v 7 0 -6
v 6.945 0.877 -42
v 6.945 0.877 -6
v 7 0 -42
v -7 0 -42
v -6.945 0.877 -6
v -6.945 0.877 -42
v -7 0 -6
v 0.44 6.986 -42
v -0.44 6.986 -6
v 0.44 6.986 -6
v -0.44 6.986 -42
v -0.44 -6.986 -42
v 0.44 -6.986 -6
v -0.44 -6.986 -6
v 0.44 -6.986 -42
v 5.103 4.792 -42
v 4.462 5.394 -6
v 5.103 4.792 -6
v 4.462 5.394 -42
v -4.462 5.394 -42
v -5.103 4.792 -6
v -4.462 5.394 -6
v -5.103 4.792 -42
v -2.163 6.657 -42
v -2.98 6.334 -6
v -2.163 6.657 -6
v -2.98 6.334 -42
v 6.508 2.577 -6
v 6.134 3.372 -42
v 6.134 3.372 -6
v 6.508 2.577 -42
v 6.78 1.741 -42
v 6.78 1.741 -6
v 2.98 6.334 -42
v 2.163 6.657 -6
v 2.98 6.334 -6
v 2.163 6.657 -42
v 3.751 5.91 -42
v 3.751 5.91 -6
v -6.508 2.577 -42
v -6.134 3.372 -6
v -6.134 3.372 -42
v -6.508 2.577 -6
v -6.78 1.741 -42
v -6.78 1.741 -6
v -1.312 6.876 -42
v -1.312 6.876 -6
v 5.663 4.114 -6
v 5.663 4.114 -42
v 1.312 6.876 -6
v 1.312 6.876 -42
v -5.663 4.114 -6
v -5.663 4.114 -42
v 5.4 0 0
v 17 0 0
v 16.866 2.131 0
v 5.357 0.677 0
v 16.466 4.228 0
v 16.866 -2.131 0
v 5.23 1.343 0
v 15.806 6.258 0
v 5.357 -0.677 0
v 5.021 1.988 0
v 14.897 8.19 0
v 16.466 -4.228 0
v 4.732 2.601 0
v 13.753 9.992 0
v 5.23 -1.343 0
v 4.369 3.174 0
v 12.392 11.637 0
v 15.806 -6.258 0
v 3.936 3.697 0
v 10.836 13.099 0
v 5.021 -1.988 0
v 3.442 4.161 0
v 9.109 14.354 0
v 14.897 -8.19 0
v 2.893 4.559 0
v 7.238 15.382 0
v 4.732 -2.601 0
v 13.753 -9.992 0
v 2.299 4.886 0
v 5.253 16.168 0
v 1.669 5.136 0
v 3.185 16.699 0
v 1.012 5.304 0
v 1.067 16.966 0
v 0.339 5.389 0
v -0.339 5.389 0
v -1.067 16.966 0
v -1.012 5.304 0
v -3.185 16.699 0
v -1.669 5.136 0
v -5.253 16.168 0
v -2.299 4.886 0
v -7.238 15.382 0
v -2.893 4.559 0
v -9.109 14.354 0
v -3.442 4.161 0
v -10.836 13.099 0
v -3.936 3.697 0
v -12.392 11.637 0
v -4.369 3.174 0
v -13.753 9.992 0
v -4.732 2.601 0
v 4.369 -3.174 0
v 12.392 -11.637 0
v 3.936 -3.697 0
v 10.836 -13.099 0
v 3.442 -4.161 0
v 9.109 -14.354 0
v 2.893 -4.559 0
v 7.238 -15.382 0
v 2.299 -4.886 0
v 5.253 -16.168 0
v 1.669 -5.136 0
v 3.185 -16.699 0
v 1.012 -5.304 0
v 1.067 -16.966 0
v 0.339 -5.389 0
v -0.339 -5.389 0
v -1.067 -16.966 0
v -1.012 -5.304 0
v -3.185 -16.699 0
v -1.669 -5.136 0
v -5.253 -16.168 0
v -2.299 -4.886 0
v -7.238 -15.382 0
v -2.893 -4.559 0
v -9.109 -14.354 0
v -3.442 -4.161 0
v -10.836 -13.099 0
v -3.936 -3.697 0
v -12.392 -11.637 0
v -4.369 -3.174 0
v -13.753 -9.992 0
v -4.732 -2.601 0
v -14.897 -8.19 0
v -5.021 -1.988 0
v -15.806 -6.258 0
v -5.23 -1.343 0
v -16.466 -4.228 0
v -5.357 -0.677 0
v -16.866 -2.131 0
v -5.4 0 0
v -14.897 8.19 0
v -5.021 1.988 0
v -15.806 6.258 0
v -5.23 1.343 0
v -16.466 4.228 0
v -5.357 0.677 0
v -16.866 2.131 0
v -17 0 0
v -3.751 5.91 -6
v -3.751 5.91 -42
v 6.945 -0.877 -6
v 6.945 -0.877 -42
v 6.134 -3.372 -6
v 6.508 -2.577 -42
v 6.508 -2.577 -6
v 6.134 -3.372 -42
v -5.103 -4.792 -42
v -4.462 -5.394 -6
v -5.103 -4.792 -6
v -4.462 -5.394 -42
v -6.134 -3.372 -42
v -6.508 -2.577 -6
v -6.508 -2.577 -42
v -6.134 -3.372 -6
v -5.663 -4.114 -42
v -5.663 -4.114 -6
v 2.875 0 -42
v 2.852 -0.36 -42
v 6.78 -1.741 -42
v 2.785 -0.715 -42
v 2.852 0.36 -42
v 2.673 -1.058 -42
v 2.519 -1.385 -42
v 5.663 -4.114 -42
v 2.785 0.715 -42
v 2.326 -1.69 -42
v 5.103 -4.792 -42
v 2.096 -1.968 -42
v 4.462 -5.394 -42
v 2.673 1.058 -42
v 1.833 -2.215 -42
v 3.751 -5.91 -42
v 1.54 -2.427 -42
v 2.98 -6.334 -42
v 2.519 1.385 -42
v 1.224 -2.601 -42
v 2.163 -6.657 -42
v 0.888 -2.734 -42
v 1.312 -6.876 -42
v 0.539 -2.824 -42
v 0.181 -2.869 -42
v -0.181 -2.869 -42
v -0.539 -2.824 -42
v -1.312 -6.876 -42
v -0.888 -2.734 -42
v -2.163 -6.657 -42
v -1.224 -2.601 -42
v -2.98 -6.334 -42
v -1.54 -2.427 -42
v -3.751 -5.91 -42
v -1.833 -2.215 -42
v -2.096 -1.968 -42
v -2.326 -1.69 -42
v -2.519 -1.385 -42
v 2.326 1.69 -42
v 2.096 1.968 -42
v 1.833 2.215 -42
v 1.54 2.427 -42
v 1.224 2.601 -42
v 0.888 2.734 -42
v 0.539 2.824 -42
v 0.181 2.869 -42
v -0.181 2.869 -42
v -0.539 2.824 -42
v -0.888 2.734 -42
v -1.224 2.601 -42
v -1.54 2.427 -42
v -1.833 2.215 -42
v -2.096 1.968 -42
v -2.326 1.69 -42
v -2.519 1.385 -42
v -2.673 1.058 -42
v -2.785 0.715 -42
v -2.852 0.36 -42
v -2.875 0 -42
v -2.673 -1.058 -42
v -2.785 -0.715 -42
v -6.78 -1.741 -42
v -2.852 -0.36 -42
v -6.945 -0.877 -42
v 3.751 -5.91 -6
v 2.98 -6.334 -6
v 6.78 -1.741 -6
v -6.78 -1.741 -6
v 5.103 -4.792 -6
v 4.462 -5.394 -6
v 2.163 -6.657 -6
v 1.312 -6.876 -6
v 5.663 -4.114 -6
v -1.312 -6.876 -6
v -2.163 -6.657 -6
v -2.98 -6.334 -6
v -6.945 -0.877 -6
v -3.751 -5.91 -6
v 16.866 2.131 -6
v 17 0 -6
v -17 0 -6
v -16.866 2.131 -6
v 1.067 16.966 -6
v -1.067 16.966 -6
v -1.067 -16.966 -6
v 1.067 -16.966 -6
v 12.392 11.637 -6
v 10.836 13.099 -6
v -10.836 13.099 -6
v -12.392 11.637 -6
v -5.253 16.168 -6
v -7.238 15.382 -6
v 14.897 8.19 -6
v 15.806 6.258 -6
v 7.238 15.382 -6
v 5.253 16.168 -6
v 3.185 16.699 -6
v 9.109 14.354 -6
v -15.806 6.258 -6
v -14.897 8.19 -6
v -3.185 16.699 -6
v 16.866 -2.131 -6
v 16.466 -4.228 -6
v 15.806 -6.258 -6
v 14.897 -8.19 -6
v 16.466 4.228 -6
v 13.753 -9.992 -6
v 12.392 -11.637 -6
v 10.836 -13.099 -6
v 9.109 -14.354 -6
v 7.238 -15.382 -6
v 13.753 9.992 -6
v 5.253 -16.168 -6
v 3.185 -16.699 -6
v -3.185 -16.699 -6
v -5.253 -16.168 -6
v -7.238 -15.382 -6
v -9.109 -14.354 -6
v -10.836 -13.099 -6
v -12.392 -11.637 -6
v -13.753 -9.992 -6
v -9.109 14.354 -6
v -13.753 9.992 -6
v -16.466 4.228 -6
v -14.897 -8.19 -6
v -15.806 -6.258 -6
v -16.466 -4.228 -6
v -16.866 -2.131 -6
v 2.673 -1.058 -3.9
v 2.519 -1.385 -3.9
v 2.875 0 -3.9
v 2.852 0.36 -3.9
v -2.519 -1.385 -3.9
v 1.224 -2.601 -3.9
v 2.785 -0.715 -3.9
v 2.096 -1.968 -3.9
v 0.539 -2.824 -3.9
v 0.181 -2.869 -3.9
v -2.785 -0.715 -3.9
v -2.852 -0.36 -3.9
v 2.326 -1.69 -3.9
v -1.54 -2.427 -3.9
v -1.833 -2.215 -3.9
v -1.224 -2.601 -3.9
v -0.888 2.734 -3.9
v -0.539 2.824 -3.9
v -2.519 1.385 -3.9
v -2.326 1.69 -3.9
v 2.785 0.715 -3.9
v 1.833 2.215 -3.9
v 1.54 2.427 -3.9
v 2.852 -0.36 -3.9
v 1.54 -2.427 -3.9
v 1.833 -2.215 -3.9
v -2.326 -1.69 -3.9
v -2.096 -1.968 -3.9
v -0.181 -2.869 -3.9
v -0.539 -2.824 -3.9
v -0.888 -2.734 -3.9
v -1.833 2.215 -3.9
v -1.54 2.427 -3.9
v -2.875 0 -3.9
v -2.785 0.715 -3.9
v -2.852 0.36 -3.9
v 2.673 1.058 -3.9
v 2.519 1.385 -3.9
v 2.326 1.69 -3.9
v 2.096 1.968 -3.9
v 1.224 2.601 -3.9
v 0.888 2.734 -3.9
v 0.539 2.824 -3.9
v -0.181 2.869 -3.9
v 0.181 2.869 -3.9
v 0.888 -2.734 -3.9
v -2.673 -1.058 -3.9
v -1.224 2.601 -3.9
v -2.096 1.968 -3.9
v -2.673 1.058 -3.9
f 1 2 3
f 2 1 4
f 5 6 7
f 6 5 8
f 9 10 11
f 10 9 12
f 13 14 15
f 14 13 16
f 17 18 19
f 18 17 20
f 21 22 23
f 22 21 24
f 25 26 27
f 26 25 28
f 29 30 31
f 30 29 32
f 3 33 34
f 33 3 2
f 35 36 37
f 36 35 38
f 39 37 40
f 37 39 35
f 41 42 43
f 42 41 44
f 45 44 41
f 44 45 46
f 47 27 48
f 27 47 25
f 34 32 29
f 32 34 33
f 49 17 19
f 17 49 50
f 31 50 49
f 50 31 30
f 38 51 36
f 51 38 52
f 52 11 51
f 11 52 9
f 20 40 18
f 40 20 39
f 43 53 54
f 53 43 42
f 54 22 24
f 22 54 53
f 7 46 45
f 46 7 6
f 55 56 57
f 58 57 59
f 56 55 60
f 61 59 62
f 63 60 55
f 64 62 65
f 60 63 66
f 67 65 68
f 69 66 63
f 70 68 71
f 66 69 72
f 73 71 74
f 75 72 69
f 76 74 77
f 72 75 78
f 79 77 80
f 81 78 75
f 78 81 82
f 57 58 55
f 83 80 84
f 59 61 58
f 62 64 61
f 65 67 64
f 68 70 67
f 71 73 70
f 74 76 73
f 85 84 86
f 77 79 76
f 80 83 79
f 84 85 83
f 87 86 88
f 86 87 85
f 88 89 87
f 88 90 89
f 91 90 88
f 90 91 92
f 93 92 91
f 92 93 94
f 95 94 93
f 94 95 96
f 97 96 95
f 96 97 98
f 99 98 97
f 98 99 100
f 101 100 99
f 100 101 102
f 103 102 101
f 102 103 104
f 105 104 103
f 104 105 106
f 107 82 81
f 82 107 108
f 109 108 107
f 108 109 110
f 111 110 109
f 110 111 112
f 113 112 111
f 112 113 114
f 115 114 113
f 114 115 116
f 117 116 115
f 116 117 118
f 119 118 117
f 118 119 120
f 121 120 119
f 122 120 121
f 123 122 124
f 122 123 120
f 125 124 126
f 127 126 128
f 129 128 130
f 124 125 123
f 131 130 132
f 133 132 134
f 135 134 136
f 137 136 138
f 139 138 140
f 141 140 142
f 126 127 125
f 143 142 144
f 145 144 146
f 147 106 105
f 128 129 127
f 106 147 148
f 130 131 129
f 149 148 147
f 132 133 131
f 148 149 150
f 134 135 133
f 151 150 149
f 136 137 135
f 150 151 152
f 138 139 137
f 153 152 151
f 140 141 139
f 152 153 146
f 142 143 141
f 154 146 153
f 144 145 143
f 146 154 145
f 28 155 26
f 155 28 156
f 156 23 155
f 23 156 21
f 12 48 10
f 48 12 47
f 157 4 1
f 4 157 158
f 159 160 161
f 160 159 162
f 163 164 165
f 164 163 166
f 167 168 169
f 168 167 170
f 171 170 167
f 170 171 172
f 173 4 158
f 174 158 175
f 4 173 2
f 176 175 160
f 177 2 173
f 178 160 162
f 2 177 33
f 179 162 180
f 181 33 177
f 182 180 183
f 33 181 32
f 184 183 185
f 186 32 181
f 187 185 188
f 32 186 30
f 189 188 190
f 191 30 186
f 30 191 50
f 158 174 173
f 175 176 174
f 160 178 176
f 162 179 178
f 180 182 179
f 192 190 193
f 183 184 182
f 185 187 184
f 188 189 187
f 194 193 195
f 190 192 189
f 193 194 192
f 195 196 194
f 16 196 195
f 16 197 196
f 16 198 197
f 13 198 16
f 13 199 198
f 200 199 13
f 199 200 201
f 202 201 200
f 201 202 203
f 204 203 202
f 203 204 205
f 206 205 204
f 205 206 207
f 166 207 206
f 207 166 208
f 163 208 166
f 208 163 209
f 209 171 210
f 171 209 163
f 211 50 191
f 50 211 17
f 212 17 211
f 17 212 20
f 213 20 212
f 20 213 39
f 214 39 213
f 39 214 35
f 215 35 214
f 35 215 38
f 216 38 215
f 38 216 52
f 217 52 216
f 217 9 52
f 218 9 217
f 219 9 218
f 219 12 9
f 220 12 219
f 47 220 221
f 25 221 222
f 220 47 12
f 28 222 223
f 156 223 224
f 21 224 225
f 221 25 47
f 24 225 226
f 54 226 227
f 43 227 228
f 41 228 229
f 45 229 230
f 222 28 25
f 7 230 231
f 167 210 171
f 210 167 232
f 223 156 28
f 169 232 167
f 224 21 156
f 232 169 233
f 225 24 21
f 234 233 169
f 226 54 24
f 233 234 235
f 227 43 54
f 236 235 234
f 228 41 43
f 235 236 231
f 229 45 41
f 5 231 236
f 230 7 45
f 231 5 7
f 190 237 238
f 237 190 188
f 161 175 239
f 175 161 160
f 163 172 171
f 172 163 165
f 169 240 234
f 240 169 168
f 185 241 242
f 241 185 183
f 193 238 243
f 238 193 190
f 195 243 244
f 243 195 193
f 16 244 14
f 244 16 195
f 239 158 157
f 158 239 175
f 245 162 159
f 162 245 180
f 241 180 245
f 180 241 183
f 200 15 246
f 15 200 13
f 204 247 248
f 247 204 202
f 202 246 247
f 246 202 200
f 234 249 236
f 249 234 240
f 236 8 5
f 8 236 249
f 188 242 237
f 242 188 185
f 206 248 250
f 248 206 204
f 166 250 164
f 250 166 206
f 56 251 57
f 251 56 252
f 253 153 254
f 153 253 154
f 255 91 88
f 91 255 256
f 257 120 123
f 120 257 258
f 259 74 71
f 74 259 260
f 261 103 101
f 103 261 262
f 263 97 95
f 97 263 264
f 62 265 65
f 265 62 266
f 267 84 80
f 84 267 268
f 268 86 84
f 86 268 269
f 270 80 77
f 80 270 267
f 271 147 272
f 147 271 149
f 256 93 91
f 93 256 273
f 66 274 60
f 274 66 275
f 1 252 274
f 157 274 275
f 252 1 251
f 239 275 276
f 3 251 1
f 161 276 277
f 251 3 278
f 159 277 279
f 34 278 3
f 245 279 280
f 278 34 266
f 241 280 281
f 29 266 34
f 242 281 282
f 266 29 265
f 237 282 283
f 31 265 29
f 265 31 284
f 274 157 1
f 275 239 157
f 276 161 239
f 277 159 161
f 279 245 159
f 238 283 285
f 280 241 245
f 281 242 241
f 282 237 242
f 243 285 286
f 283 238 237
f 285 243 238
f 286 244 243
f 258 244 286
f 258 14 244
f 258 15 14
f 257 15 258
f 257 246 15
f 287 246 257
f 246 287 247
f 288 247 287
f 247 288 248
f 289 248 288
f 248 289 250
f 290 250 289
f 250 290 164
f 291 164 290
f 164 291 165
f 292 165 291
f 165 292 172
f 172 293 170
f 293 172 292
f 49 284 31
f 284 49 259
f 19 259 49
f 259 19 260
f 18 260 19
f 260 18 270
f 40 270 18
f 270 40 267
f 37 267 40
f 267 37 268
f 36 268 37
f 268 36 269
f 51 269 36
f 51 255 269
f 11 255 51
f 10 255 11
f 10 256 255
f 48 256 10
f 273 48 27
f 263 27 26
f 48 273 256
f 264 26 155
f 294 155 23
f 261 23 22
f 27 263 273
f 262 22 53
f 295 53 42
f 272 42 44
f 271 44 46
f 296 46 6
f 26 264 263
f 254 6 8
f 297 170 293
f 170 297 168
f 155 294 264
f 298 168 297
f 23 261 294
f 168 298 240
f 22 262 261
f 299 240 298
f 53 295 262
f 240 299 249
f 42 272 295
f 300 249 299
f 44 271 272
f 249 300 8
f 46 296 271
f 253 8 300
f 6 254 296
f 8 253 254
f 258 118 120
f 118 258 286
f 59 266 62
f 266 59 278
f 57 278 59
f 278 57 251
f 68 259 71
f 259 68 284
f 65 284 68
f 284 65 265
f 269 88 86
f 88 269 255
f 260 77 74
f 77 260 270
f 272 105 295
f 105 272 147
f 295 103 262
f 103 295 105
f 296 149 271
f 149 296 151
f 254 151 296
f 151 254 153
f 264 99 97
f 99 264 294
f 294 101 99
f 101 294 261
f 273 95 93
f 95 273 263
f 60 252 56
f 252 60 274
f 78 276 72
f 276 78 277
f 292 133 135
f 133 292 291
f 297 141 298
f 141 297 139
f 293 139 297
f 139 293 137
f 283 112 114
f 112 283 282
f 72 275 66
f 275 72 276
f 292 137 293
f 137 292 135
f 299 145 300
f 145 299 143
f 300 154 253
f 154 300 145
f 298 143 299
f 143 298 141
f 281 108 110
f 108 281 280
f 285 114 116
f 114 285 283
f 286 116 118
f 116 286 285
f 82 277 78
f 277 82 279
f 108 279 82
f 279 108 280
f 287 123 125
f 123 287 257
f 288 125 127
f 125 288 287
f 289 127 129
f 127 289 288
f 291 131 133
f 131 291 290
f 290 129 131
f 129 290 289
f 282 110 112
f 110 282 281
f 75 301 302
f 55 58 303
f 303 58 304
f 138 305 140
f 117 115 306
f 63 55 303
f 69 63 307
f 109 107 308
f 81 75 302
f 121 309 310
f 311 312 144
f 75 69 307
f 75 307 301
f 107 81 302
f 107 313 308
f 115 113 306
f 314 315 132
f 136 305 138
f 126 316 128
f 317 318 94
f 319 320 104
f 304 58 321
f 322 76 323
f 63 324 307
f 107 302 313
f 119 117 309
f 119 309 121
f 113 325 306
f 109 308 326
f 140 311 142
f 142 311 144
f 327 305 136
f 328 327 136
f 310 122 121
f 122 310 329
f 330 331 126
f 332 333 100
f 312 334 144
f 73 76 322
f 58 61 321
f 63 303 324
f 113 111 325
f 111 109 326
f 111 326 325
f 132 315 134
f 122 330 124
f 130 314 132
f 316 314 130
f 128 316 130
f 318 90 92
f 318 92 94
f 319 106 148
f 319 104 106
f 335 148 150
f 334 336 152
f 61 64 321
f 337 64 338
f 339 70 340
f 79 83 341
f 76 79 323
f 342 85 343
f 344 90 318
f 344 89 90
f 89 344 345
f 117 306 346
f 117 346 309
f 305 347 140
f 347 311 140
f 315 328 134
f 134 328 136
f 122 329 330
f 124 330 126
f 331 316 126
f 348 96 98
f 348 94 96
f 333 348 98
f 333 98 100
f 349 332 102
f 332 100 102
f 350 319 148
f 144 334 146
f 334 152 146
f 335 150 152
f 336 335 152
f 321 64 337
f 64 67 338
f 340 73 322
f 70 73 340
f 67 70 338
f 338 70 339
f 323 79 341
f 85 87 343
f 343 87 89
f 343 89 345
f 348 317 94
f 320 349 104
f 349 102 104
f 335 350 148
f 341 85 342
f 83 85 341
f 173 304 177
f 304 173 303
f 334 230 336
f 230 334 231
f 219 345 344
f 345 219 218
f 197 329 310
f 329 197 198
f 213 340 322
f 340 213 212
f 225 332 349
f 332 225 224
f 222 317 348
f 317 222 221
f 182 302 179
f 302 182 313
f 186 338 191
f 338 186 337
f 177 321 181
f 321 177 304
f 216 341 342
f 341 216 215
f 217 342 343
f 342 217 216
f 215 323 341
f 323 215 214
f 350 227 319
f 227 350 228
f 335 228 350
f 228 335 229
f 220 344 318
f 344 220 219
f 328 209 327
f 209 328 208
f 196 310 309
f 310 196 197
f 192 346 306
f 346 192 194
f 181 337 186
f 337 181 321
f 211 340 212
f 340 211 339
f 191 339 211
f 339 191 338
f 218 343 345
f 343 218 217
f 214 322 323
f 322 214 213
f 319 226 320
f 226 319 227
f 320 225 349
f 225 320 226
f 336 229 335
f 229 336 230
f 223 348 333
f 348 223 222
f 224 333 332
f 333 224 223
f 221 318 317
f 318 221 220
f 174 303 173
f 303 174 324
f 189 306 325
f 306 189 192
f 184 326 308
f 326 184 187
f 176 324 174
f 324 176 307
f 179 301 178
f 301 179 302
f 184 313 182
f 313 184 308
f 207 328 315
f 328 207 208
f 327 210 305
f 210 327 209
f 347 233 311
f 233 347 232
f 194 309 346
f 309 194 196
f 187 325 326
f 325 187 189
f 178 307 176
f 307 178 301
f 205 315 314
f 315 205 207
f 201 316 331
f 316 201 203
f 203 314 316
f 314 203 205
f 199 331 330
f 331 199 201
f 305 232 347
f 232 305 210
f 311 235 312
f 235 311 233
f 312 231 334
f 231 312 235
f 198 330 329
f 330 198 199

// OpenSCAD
$fn = 50;


difference() {
	union() {
		translate(v = [0, 0, -42.0000000000]) {
			cylinder(h = 42, r = 7.0000000000);
		}
		translate(v = [0, 0, -6.0000000000]) {
			cylinder(h = 6, r = 17.0000000000);
		}
	}
	union() {
		translate(v = [0, 0, 0]) {
			rotate(a = [0, 0, 0]) {
				difference() {
					union() {
						#translate(v = [0, 0, -42.0000000000]) {
							cylinder(h = 42, r = 2.6000000000);
						}
						#translate(v = [0, 0, -3.9000000000]) {
							cylinder(h = 3.9000000000, r1 = 2.8750000000, r2 = 5.4000000000);
						}
						#translate(v = [0, 0, -42.0000000000]) {
							cylinder(h = 42, r = 2.8750000000);
						}
						#translate(v = [0, 0, -42.0000000000]) {
							cylinder(h = 42, r = 2.6000000000);
						}
					}
					union();
				}
			}
		}
	}
}
